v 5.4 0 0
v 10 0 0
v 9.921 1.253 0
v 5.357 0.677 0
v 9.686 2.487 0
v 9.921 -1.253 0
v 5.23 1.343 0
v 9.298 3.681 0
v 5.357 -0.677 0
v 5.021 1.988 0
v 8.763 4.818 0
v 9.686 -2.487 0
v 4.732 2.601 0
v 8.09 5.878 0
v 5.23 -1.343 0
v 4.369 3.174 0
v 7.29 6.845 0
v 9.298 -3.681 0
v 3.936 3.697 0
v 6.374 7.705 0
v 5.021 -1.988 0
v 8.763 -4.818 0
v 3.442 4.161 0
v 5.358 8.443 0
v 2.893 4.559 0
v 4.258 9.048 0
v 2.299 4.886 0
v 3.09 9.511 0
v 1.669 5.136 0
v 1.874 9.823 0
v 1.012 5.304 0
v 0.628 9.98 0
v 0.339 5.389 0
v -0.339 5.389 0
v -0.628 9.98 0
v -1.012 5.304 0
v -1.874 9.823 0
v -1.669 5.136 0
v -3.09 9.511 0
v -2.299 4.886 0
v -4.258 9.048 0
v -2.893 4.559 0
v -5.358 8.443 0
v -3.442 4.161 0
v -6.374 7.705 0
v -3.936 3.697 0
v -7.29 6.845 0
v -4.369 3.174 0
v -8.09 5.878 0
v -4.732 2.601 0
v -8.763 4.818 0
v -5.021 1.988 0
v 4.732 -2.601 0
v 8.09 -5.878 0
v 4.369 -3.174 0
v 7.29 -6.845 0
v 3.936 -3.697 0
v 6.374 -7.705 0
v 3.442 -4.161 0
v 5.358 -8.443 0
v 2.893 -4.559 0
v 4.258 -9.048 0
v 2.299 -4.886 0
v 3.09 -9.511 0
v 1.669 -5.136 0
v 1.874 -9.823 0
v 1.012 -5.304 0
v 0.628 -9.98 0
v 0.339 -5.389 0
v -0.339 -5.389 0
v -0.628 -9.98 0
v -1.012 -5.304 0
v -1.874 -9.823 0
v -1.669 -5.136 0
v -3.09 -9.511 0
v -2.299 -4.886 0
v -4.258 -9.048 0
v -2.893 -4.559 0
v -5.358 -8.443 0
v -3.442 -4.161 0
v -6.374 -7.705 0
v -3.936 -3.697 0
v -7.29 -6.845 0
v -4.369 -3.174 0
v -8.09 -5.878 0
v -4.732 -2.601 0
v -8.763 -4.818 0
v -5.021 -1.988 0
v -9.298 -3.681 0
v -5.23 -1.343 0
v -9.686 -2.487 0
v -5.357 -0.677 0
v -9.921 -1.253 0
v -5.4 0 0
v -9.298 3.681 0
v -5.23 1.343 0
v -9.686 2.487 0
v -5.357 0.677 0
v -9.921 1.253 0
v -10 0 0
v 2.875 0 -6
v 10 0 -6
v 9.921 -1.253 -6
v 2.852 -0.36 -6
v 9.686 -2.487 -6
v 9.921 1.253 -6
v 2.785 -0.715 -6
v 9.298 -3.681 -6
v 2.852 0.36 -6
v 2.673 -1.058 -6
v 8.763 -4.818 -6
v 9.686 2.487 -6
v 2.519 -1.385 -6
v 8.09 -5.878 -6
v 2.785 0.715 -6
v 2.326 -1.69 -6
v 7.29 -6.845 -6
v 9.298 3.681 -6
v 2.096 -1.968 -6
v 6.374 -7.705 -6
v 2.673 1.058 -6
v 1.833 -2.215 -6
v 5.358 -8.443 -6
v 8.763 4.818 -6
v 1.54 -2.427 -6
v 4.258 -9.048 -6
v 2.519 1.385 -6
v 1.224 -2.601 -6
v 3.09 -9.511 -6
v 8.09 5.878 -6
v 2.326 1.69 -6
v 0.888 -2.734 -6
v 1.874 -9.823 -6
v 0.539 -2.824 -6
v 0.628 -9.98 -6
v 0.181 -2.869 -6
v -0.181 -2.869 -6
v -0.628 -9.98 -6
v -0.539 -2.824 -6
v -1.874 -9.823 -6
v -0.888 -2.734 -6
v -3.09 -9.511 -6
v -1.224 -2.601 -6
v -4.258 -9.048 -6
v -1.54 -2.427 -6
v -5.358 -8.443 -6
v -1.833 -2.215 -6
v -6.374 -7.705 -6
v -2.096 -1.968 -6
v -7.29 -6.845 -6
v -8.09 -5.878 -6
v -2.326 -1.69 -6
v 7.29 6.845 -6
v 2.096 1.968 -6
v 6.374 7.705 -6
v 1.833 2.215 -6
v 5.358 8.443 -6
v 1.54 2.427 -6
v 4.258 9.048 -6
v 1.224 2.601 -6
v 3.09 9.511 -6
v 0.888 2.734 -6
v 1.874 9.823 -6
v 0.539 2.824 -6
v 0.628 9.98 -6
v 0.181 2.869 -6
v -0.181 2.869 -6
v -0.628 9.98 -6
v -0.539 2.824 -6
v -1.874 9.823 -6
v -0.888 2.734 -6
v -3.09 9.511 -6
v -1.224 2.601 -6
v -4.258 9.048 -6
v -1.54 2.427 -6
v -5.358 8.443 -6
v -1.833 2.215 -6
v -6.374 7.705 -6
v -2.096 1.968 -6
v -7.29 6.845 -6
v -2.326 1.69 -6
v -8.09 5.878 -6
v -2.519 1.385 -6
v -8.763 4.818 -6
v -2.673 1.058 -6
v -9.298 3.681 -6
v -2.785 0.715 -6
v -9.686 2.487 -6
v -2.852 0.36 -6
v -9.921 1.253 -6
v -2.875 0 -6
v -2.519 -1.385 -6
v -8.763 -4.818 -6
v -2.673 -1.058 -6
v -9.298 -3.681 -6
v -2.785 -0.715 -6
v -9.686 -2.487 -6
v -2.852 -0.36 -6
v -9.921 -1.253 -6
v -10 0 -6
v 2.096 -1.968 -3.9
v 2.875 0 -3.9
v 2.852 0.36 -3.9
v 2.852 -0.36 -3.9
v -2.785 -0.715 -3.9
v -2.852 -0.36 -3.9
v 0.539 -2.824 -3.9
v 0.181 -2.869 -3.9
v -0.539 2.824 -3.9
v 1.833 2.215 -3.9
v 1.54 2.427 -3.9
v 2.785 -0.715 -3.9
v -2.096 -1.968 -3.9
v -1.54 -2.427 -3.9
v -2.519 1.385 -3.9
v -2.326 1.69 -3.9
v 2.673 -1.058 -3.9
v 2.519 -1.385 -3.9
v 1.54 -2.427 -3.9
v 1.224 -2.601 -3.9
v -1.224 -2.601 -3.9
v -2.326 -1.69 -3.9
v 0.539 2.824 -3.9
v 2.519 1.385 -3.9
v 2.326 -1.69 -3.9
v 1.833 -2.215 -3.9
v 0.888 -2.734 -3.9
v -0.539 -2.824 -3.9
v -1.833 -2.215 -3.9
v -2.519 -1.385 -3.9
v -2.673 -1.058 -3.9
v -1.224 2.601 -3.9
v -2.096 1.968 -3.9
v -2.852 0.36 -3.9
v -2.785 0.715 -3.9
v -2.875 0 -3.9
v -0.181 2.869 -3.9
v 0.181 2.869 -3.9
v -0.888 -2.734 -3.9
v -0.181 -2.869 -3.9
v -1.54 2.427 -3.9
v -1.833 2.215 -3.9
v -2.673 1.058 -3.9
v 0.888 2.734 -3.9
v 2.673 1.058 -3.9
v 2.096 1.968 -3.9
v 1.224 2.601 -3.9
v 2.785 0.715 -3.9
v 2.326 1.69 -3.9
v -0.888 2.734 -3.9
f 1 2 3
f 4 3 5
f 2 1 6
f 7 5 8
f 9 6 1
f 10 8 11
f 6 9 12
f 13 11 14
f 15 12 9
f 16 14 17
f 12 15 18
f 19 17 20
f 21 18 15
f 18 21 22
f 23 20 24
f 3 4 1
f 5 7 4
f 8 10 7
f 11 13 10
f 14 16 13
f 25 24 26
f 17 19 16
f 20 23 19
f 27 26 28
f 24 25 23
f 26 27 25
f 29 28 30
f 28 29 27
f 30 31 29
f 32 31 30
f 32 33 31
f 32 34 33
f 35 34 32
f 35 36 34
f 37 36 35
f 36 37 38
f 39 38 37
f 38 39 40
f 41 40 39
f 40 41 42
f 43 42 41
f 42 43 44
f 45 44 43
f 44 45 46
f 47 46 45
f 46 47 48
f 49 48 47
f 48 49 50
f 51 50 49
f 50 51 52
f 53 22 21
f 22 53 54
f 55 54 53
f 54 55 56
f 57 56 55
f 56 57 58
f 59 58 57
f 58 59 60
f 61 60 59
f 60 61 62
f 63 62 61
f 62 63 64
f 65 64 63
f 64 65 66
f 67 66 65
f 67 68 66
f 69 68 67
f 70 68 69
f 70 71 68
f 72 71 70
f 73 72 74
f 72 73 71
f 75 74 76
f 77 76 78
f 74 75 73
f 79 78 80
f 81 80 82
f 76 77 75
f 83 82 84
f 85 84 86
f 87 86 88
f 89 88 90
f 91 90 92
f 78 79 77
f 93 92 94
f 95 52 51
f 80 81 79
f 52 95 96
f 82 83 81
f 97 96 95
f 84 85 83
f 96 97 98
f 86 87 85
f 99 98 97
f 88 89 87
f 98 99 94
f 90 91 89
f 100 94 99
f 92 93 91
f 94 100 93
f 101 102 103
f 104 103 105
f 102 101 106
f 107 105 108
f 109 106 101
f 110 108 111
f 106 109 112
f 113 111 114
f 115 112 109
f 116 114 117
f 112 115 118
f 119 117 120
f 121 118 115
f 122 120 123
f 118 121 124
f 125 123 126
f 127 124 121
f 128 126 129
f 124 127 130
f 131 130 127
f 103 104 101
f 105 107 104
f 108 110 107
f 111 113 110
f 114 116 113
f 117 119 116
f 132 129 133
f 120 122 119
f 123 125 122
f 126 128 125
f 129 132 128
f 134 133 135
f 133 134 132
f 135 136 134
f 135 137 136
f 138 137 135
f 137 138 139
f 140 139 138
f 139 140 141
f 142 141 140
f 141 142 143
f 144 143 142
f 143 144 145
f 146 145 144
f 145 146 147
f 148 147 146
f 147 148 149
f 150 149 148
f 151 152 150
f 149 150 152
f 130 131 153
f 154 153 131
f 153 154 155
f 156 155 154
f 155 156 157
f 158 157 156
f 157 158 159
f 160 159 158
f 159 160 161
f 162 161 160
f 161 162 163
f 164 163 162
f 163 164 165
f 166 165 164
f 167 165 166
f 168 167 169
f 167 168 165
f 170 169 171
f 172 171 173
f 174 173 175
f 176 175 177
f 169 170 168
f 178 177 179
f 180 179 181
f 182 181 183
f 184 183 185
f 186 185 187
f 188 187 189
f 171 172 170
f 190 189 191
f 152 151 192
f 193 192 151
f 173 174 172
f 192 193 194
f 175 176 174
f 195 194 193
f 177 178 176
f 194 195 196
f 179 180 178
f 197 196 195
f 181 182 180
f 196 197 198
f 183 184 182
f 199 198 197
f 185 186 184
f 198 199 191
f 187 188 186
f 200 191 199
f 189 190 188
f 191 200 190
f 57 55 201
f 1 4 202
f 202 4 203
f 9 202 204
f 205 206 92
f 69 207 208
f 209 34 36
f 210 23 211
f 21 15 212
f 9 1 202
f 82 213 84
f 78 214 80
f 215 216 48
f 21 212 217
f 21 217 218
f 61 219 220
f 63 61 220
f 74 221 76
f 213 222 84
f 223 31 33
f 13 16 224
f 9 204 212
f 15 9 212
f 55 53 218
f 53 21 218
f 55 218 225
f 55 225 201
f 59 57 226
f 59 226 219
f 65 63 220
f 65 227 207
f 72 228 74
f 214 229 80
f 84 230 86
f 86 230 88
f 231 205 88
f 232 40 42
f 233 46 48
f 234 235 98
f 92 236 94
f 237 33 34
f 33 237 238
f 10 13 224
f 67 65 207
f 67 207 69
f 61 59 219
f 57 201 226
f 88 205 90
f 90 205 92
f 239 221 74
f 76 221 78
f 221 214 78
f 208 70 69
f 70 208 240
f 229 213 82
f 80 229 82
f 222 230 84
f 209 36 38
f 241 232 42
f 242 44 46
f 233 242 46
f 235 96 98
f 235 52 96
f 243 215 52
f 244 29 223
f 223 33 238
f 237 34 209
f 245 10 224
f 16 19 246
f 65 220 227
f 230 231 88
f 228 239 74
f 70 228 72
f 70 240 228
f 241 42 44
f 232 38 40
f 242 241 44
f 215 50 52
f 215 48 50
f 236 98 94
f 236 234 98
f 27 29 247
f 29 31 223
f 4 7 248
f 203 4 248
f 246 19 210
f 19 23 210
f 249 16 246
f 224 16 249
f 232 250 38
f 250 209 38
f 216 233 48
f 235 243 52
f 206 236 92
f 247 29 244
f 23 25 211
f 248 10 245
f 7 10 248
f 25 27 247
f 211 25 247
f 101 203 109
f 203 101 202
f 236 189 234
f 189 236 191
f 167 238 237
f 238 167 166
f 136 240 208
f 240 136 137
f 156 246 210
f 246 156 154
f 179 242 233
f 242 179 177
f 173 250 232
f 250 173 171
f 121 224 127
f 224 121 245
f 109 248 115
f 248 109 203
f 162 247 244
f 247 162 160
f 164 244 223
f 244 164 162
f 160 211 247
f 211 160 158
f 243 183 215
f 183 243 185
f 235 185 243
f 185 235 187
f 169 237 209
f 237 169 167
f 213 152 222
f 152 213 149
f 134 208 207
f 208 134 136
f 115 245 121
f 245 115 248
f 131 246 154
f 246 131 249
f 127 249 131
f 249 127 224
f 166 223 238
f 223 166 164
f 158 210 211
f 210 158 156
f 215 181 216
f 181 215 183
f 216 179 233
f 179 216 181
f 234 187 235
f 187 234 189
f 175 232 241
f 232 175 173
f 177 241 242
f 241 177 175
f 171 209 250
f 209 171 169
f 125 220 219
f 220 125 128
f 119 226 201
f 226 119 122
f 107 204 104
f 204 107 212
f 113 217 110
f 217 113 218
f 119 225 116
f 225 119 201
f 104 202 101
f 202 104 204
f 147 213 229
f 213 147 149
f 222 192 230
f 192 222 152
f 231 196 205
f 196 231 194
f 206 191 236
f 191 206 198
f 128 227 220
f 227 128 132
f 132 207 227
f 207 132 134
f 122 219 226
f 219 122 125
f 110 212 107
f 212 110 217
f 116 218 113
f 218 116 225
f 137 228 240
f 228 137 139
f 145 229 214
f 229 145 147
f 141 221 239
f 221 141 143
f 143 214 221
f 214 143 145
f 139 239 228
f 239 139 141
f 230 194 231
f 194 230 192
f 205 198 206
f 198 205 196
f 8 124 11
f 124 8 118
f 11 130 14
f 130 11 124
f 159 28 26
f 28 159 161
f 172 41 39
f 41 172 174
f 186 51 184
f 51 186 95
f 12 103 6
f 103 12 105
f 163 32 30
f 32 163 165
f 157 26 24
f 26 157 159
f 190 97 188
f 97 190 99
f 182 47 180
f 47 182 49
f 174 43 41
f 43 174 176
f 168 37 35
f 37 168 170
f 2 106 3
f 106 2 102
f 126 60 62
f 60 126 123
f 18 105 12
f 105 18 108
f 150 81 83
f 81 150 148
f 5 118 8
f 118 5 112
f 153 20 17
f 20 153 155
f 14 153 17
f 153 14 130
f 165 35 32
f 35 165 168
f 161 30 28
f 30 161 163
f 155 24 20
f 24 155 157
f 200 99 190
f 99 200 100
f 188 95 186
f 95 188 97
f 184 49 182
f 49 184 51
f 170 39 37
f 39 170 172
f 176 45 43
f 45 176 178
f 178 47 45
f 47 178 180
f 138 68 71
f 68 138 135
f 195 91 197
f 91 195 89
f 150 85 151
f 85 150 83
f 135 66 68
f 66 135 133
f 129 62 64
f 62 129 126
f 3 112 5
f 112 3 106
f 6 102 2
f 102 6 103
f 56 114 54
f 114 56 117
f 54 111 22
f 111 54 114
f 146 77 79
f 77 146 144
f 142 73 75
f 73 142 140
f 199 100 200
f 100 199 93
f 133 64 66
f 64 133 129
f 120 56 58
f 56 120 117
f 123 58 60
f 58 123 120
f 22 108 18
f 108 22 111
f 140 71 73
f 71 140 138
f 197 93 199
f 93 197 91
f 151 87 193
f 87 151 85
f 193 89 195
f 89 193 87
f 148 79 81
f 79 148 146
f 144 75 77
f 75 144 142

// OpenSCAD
$fn = 50;


difference() {
	union() {
		translate(v = [0, 0, -6.0000000000]) {
			cylinder(h = 6, r = 10.0000000000);
		}
		cylinder(h = 0, r = 16.0000000000);
	}
	union() {
		translate(v = [0, 0, 0]) {
			rotate(a = [0, 0, 0]) {
				difference() {
					union() {
						#translate(v = [0, 0, -6.0000000000]) {
							cylinder(h = 6, r = 2.6000000000);
						}
						#translate(v = [0, 0, -3.9000000000]) {
							cylinder(h = 3.9000000000, r1 = 2.8750000000, r2 = 5.4000000000);
						}
						#translate(v = [0, 0, -6.0000000000]) {
							cylinder(h = 6, r = 2.8750000000);
						}
						#translate(v = [0, 0, -6.0000000000]) {
							cylinder(h = 6, r = 2.6000000000);
						}
					}
					union();
				}
			}
		}
	}
}
